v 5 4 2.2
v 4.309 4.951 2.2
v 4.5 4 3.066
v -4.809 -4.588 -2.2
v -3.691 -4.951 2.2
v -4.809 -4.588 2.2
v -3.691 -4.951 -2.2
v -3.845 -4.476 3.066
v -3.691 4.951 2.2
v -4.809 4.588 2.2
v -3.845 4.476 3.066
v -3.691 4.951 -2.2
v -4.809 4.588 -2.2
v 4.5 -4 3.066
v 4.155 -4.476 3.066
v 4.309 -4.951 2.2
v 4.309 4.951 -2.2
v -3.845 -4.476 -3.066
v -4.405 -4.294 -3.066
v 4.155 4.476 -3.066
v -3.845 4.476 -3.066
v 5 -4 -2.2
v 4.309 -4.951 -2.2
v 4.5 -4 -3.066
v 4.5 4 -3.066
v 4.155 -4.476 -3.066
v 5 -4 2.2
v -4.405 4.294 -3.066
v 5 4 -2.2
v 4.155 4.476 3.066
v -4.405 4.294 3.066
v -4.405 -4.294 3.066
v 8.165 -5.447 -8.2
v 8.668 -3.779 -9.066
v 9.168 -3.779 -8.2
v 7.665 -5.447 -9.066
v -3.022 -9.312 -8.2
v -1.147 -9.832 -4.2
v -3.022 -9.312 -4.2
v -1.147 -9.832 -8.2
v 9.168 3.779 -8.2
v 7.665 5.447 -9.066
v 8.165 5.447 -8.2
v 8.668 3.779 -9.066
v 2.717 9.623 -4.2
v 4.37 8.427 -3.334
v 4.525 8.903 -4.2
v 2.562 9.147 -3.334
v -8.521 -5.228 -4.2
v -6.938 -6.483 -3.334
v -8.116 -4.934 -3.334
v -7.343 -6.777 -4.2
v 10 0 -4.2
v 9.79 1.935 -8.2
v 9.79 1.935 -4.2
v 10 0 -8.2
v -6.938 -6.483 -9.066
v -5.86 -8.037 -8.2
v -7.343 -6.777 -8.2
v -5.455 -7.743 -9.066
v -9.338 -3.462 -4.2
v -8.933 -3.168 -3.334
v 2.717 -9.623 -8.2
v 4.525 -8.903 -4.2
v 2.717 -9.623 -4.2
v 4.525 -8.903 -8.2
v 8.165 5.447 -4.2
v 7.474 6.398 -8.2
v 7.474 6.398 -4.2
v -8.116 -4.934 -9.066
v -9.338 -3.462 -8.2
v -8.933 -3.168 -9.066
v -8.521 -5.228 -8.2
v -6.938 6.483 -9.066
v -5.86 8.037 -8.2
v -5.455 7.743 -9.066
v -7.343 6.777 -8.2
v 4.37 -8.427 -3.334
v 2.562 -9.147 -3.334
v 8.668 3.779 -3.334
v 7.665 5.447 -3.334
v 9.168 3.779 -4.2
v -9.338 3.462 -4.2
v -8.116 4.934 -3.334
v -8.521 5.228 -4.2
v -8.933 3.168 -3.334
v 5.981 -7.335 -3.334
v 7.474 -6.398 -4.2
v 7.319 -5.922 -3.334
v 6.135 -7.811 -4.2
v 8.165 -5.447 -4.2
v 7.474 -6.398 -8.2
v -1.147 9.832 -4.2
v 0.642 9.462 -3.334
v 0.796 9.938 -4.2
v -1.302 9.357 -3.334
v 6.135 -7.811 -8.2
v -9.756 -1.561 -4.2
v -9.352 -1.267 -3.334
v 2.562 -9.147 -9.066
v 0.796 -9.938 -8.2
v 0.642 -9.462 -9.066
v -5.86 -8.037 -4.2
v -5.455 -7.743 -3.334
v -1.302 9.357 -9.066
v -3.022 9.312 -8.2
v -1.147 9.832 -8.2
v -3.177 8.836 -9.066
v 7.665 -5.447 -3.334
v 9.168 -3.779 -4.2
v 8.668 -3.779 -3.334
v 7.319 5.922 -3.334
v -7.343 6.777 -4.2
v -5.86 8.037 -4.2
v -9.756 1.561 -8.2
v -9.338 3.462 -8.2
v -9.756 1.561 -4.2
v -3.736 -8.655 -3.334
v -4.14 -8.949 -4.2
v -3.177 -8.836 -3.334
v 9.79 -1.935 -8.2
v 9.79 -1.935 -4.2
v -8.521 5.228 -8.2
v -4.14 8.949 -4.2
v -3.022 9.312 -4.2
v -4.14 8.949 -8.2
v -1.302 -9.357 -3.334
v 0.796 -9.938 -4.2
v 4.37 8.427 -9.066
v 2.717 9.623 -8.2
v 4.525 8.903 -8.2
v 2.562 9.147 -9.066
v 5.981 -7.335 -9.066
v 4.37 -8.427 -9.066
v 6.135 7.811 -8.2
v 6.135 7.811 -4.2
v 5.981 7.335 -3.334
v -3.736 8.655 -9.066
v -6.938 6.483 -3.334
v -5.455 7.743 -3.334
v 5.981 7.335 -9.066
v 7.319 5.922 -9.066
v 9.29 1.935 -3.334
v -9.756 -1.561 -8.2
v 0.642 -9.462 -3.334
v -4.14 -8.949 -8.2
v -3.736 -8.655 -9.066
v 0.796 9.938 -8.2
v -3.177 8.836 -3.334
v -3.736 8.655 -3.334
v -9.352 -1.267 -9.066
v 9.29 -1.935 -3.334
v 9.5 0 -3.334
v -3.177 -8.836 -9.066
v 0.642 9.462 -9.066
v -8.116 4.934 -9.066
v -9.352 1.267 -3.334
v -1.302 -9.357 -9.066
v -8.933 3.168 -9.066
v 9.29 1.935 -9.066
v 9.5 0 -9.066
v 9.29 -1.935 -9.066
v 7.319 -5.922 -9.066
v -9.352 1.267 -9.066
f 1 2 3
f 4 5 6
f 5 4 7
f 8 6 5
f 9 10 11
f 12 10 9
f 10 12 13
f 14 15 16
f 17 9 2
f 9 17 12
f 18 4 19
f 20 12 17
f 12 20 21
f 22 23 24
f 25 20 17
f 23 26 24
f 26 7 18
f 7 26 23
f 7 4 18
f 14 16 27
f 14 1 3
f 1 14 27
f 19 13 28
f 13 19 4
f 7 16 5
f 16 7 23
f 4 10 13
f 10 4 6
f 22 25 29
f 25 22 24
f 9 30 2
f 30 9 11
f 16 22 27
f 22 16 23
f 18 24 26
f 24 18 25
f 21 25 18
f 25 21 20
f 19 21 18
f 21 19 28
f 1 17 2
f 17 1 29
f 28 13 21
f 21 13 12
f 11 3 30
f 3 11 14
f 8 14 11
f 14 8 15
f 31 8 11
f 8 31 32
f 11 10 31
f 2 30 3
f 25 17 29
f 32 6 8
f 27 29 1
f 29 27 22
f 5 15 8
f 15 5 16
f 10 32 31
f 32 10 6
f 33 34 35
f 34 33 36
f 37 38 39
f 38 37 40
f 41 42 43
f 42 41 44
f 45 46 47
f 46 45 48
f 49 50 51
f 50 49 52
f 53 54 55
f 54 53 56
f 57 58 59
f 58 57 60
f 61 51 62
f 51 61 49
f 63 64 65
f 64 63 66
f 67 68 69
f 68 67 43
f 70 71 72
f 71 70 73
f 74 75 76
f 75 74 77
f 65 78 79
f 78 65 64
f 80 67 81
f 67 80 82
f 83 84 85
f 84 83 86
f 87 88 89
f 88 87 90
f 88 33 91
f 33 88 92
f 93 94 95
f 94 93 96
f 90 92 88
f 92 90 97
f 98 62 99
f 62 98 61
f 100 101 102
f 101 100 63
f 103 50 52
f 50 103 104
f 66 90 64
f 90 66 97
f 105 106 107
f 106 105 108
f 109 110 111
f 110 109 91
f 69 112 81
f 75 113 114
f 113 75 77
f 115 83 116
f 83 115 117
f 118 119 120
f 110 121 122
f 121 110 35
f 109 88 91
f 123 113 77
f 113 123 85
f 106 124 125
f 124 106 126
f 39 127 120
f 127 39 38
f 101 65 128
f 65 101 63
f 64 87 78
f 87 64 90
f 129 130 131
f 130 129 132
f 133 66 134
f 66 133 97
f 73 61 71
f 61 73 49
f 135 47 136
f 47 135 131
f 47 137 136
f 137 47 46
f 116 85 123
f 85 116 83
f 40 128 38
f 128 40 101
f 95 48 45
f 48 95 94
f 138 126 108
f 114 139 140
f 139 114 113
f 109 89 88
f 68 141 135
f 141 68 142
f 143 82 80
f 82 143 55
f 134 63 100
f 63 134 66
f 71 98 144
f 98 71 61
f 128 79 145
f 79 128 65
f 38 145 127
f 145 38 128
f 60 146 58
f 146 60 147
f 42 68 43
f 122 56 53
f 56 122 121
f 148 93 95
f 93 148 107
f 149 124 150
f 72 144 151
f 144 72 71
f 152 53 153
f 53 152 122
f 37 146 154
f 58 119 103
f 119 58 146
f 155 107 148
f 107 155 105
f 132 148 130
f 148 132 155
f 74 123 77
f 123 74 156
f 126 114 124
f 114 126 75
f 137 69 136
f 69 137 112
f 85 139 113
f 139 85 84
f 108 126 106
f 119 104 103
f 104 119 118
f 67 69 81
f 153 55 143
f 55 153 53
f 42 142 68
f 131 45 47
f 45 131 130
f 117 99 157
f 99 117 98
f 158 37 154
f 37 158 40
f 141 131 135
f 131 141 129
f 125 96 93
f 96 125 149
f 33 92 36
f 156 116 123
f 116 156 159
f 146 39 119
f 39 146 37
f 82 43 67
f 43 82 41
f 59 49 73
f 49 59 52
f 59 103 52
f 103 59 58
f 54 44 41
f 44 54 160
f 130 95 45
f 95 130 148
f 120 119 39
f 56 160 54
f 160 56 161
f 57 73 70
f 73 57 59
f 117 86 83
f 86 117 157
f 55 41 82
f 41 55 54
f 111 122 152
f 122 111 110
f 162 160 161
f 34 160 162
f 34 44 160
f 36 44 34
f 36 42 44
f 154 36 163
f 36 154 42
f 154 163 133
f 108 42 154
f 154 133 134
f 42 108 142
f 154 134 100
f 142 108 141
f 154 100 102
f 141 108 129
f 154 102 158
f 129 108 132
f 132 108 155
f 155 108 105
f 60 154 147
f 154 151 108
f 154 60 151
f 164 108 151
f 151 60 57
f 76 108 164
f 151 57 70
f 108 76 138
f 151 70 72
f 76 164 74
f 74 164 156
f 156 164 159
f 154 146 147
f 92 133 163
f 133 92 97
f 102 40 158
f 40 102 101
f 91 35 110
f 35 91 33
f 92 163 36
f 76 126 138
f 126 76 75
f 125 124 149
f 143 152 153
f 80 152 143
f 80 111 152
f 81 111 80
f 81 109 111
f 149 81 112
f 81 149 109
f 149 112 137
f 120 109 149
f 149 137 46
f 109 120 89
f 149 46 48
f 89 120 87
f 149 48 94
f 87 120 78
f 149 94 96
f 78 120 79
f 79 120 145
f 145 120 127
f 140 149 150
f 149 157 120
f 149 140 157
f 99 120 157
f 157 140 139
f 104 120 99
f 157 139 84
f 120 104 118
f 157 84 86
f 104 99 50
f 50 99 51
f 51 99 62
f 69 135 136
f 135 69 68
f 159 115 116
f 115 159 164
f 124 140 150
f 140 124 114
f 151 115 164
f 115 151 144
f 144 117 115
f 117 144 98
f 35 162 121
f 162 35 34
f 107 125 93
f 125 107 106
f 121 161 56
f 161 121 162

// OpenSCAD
// ========================================
// TOLERANCE TEST PEG - SQUARE
// Test square shaft to press into each hole of the square tolerance block
// ========================================

// === PARAMETERS ===
nominal_sq = 10;          // nominal square side length (mm)
peg_h = 6.4;              // peg height (0.6mm shorter than hole depth)
grip_d = 20;              // grip base diameter (mm)
grip_h = 6;               // grip base height (mm)
corner_r = 1;             // corner radius (mm)

// === MODULES ===
module test_peg_square(sq=nominal_sq, h=peg_h, grip_d=grip_d, grip_h=grip_h, r=corner_r) {
    minkowski() {
        union() {
            // Main shaft (shrink by corner radius)
            cube([sq-2*r, sq-2*r, h-2*r], center=true);

            // Grip base at bottom (shrink by corner radius)
            translate([0, 0, -(h/2 + grip_h/2)])
                cylinder(d=grip_d-2*r, h=grip_h-2*r, center=true);
        }
        sphere(r);
    }
}

// === RENDER ===
test_peg_square();
